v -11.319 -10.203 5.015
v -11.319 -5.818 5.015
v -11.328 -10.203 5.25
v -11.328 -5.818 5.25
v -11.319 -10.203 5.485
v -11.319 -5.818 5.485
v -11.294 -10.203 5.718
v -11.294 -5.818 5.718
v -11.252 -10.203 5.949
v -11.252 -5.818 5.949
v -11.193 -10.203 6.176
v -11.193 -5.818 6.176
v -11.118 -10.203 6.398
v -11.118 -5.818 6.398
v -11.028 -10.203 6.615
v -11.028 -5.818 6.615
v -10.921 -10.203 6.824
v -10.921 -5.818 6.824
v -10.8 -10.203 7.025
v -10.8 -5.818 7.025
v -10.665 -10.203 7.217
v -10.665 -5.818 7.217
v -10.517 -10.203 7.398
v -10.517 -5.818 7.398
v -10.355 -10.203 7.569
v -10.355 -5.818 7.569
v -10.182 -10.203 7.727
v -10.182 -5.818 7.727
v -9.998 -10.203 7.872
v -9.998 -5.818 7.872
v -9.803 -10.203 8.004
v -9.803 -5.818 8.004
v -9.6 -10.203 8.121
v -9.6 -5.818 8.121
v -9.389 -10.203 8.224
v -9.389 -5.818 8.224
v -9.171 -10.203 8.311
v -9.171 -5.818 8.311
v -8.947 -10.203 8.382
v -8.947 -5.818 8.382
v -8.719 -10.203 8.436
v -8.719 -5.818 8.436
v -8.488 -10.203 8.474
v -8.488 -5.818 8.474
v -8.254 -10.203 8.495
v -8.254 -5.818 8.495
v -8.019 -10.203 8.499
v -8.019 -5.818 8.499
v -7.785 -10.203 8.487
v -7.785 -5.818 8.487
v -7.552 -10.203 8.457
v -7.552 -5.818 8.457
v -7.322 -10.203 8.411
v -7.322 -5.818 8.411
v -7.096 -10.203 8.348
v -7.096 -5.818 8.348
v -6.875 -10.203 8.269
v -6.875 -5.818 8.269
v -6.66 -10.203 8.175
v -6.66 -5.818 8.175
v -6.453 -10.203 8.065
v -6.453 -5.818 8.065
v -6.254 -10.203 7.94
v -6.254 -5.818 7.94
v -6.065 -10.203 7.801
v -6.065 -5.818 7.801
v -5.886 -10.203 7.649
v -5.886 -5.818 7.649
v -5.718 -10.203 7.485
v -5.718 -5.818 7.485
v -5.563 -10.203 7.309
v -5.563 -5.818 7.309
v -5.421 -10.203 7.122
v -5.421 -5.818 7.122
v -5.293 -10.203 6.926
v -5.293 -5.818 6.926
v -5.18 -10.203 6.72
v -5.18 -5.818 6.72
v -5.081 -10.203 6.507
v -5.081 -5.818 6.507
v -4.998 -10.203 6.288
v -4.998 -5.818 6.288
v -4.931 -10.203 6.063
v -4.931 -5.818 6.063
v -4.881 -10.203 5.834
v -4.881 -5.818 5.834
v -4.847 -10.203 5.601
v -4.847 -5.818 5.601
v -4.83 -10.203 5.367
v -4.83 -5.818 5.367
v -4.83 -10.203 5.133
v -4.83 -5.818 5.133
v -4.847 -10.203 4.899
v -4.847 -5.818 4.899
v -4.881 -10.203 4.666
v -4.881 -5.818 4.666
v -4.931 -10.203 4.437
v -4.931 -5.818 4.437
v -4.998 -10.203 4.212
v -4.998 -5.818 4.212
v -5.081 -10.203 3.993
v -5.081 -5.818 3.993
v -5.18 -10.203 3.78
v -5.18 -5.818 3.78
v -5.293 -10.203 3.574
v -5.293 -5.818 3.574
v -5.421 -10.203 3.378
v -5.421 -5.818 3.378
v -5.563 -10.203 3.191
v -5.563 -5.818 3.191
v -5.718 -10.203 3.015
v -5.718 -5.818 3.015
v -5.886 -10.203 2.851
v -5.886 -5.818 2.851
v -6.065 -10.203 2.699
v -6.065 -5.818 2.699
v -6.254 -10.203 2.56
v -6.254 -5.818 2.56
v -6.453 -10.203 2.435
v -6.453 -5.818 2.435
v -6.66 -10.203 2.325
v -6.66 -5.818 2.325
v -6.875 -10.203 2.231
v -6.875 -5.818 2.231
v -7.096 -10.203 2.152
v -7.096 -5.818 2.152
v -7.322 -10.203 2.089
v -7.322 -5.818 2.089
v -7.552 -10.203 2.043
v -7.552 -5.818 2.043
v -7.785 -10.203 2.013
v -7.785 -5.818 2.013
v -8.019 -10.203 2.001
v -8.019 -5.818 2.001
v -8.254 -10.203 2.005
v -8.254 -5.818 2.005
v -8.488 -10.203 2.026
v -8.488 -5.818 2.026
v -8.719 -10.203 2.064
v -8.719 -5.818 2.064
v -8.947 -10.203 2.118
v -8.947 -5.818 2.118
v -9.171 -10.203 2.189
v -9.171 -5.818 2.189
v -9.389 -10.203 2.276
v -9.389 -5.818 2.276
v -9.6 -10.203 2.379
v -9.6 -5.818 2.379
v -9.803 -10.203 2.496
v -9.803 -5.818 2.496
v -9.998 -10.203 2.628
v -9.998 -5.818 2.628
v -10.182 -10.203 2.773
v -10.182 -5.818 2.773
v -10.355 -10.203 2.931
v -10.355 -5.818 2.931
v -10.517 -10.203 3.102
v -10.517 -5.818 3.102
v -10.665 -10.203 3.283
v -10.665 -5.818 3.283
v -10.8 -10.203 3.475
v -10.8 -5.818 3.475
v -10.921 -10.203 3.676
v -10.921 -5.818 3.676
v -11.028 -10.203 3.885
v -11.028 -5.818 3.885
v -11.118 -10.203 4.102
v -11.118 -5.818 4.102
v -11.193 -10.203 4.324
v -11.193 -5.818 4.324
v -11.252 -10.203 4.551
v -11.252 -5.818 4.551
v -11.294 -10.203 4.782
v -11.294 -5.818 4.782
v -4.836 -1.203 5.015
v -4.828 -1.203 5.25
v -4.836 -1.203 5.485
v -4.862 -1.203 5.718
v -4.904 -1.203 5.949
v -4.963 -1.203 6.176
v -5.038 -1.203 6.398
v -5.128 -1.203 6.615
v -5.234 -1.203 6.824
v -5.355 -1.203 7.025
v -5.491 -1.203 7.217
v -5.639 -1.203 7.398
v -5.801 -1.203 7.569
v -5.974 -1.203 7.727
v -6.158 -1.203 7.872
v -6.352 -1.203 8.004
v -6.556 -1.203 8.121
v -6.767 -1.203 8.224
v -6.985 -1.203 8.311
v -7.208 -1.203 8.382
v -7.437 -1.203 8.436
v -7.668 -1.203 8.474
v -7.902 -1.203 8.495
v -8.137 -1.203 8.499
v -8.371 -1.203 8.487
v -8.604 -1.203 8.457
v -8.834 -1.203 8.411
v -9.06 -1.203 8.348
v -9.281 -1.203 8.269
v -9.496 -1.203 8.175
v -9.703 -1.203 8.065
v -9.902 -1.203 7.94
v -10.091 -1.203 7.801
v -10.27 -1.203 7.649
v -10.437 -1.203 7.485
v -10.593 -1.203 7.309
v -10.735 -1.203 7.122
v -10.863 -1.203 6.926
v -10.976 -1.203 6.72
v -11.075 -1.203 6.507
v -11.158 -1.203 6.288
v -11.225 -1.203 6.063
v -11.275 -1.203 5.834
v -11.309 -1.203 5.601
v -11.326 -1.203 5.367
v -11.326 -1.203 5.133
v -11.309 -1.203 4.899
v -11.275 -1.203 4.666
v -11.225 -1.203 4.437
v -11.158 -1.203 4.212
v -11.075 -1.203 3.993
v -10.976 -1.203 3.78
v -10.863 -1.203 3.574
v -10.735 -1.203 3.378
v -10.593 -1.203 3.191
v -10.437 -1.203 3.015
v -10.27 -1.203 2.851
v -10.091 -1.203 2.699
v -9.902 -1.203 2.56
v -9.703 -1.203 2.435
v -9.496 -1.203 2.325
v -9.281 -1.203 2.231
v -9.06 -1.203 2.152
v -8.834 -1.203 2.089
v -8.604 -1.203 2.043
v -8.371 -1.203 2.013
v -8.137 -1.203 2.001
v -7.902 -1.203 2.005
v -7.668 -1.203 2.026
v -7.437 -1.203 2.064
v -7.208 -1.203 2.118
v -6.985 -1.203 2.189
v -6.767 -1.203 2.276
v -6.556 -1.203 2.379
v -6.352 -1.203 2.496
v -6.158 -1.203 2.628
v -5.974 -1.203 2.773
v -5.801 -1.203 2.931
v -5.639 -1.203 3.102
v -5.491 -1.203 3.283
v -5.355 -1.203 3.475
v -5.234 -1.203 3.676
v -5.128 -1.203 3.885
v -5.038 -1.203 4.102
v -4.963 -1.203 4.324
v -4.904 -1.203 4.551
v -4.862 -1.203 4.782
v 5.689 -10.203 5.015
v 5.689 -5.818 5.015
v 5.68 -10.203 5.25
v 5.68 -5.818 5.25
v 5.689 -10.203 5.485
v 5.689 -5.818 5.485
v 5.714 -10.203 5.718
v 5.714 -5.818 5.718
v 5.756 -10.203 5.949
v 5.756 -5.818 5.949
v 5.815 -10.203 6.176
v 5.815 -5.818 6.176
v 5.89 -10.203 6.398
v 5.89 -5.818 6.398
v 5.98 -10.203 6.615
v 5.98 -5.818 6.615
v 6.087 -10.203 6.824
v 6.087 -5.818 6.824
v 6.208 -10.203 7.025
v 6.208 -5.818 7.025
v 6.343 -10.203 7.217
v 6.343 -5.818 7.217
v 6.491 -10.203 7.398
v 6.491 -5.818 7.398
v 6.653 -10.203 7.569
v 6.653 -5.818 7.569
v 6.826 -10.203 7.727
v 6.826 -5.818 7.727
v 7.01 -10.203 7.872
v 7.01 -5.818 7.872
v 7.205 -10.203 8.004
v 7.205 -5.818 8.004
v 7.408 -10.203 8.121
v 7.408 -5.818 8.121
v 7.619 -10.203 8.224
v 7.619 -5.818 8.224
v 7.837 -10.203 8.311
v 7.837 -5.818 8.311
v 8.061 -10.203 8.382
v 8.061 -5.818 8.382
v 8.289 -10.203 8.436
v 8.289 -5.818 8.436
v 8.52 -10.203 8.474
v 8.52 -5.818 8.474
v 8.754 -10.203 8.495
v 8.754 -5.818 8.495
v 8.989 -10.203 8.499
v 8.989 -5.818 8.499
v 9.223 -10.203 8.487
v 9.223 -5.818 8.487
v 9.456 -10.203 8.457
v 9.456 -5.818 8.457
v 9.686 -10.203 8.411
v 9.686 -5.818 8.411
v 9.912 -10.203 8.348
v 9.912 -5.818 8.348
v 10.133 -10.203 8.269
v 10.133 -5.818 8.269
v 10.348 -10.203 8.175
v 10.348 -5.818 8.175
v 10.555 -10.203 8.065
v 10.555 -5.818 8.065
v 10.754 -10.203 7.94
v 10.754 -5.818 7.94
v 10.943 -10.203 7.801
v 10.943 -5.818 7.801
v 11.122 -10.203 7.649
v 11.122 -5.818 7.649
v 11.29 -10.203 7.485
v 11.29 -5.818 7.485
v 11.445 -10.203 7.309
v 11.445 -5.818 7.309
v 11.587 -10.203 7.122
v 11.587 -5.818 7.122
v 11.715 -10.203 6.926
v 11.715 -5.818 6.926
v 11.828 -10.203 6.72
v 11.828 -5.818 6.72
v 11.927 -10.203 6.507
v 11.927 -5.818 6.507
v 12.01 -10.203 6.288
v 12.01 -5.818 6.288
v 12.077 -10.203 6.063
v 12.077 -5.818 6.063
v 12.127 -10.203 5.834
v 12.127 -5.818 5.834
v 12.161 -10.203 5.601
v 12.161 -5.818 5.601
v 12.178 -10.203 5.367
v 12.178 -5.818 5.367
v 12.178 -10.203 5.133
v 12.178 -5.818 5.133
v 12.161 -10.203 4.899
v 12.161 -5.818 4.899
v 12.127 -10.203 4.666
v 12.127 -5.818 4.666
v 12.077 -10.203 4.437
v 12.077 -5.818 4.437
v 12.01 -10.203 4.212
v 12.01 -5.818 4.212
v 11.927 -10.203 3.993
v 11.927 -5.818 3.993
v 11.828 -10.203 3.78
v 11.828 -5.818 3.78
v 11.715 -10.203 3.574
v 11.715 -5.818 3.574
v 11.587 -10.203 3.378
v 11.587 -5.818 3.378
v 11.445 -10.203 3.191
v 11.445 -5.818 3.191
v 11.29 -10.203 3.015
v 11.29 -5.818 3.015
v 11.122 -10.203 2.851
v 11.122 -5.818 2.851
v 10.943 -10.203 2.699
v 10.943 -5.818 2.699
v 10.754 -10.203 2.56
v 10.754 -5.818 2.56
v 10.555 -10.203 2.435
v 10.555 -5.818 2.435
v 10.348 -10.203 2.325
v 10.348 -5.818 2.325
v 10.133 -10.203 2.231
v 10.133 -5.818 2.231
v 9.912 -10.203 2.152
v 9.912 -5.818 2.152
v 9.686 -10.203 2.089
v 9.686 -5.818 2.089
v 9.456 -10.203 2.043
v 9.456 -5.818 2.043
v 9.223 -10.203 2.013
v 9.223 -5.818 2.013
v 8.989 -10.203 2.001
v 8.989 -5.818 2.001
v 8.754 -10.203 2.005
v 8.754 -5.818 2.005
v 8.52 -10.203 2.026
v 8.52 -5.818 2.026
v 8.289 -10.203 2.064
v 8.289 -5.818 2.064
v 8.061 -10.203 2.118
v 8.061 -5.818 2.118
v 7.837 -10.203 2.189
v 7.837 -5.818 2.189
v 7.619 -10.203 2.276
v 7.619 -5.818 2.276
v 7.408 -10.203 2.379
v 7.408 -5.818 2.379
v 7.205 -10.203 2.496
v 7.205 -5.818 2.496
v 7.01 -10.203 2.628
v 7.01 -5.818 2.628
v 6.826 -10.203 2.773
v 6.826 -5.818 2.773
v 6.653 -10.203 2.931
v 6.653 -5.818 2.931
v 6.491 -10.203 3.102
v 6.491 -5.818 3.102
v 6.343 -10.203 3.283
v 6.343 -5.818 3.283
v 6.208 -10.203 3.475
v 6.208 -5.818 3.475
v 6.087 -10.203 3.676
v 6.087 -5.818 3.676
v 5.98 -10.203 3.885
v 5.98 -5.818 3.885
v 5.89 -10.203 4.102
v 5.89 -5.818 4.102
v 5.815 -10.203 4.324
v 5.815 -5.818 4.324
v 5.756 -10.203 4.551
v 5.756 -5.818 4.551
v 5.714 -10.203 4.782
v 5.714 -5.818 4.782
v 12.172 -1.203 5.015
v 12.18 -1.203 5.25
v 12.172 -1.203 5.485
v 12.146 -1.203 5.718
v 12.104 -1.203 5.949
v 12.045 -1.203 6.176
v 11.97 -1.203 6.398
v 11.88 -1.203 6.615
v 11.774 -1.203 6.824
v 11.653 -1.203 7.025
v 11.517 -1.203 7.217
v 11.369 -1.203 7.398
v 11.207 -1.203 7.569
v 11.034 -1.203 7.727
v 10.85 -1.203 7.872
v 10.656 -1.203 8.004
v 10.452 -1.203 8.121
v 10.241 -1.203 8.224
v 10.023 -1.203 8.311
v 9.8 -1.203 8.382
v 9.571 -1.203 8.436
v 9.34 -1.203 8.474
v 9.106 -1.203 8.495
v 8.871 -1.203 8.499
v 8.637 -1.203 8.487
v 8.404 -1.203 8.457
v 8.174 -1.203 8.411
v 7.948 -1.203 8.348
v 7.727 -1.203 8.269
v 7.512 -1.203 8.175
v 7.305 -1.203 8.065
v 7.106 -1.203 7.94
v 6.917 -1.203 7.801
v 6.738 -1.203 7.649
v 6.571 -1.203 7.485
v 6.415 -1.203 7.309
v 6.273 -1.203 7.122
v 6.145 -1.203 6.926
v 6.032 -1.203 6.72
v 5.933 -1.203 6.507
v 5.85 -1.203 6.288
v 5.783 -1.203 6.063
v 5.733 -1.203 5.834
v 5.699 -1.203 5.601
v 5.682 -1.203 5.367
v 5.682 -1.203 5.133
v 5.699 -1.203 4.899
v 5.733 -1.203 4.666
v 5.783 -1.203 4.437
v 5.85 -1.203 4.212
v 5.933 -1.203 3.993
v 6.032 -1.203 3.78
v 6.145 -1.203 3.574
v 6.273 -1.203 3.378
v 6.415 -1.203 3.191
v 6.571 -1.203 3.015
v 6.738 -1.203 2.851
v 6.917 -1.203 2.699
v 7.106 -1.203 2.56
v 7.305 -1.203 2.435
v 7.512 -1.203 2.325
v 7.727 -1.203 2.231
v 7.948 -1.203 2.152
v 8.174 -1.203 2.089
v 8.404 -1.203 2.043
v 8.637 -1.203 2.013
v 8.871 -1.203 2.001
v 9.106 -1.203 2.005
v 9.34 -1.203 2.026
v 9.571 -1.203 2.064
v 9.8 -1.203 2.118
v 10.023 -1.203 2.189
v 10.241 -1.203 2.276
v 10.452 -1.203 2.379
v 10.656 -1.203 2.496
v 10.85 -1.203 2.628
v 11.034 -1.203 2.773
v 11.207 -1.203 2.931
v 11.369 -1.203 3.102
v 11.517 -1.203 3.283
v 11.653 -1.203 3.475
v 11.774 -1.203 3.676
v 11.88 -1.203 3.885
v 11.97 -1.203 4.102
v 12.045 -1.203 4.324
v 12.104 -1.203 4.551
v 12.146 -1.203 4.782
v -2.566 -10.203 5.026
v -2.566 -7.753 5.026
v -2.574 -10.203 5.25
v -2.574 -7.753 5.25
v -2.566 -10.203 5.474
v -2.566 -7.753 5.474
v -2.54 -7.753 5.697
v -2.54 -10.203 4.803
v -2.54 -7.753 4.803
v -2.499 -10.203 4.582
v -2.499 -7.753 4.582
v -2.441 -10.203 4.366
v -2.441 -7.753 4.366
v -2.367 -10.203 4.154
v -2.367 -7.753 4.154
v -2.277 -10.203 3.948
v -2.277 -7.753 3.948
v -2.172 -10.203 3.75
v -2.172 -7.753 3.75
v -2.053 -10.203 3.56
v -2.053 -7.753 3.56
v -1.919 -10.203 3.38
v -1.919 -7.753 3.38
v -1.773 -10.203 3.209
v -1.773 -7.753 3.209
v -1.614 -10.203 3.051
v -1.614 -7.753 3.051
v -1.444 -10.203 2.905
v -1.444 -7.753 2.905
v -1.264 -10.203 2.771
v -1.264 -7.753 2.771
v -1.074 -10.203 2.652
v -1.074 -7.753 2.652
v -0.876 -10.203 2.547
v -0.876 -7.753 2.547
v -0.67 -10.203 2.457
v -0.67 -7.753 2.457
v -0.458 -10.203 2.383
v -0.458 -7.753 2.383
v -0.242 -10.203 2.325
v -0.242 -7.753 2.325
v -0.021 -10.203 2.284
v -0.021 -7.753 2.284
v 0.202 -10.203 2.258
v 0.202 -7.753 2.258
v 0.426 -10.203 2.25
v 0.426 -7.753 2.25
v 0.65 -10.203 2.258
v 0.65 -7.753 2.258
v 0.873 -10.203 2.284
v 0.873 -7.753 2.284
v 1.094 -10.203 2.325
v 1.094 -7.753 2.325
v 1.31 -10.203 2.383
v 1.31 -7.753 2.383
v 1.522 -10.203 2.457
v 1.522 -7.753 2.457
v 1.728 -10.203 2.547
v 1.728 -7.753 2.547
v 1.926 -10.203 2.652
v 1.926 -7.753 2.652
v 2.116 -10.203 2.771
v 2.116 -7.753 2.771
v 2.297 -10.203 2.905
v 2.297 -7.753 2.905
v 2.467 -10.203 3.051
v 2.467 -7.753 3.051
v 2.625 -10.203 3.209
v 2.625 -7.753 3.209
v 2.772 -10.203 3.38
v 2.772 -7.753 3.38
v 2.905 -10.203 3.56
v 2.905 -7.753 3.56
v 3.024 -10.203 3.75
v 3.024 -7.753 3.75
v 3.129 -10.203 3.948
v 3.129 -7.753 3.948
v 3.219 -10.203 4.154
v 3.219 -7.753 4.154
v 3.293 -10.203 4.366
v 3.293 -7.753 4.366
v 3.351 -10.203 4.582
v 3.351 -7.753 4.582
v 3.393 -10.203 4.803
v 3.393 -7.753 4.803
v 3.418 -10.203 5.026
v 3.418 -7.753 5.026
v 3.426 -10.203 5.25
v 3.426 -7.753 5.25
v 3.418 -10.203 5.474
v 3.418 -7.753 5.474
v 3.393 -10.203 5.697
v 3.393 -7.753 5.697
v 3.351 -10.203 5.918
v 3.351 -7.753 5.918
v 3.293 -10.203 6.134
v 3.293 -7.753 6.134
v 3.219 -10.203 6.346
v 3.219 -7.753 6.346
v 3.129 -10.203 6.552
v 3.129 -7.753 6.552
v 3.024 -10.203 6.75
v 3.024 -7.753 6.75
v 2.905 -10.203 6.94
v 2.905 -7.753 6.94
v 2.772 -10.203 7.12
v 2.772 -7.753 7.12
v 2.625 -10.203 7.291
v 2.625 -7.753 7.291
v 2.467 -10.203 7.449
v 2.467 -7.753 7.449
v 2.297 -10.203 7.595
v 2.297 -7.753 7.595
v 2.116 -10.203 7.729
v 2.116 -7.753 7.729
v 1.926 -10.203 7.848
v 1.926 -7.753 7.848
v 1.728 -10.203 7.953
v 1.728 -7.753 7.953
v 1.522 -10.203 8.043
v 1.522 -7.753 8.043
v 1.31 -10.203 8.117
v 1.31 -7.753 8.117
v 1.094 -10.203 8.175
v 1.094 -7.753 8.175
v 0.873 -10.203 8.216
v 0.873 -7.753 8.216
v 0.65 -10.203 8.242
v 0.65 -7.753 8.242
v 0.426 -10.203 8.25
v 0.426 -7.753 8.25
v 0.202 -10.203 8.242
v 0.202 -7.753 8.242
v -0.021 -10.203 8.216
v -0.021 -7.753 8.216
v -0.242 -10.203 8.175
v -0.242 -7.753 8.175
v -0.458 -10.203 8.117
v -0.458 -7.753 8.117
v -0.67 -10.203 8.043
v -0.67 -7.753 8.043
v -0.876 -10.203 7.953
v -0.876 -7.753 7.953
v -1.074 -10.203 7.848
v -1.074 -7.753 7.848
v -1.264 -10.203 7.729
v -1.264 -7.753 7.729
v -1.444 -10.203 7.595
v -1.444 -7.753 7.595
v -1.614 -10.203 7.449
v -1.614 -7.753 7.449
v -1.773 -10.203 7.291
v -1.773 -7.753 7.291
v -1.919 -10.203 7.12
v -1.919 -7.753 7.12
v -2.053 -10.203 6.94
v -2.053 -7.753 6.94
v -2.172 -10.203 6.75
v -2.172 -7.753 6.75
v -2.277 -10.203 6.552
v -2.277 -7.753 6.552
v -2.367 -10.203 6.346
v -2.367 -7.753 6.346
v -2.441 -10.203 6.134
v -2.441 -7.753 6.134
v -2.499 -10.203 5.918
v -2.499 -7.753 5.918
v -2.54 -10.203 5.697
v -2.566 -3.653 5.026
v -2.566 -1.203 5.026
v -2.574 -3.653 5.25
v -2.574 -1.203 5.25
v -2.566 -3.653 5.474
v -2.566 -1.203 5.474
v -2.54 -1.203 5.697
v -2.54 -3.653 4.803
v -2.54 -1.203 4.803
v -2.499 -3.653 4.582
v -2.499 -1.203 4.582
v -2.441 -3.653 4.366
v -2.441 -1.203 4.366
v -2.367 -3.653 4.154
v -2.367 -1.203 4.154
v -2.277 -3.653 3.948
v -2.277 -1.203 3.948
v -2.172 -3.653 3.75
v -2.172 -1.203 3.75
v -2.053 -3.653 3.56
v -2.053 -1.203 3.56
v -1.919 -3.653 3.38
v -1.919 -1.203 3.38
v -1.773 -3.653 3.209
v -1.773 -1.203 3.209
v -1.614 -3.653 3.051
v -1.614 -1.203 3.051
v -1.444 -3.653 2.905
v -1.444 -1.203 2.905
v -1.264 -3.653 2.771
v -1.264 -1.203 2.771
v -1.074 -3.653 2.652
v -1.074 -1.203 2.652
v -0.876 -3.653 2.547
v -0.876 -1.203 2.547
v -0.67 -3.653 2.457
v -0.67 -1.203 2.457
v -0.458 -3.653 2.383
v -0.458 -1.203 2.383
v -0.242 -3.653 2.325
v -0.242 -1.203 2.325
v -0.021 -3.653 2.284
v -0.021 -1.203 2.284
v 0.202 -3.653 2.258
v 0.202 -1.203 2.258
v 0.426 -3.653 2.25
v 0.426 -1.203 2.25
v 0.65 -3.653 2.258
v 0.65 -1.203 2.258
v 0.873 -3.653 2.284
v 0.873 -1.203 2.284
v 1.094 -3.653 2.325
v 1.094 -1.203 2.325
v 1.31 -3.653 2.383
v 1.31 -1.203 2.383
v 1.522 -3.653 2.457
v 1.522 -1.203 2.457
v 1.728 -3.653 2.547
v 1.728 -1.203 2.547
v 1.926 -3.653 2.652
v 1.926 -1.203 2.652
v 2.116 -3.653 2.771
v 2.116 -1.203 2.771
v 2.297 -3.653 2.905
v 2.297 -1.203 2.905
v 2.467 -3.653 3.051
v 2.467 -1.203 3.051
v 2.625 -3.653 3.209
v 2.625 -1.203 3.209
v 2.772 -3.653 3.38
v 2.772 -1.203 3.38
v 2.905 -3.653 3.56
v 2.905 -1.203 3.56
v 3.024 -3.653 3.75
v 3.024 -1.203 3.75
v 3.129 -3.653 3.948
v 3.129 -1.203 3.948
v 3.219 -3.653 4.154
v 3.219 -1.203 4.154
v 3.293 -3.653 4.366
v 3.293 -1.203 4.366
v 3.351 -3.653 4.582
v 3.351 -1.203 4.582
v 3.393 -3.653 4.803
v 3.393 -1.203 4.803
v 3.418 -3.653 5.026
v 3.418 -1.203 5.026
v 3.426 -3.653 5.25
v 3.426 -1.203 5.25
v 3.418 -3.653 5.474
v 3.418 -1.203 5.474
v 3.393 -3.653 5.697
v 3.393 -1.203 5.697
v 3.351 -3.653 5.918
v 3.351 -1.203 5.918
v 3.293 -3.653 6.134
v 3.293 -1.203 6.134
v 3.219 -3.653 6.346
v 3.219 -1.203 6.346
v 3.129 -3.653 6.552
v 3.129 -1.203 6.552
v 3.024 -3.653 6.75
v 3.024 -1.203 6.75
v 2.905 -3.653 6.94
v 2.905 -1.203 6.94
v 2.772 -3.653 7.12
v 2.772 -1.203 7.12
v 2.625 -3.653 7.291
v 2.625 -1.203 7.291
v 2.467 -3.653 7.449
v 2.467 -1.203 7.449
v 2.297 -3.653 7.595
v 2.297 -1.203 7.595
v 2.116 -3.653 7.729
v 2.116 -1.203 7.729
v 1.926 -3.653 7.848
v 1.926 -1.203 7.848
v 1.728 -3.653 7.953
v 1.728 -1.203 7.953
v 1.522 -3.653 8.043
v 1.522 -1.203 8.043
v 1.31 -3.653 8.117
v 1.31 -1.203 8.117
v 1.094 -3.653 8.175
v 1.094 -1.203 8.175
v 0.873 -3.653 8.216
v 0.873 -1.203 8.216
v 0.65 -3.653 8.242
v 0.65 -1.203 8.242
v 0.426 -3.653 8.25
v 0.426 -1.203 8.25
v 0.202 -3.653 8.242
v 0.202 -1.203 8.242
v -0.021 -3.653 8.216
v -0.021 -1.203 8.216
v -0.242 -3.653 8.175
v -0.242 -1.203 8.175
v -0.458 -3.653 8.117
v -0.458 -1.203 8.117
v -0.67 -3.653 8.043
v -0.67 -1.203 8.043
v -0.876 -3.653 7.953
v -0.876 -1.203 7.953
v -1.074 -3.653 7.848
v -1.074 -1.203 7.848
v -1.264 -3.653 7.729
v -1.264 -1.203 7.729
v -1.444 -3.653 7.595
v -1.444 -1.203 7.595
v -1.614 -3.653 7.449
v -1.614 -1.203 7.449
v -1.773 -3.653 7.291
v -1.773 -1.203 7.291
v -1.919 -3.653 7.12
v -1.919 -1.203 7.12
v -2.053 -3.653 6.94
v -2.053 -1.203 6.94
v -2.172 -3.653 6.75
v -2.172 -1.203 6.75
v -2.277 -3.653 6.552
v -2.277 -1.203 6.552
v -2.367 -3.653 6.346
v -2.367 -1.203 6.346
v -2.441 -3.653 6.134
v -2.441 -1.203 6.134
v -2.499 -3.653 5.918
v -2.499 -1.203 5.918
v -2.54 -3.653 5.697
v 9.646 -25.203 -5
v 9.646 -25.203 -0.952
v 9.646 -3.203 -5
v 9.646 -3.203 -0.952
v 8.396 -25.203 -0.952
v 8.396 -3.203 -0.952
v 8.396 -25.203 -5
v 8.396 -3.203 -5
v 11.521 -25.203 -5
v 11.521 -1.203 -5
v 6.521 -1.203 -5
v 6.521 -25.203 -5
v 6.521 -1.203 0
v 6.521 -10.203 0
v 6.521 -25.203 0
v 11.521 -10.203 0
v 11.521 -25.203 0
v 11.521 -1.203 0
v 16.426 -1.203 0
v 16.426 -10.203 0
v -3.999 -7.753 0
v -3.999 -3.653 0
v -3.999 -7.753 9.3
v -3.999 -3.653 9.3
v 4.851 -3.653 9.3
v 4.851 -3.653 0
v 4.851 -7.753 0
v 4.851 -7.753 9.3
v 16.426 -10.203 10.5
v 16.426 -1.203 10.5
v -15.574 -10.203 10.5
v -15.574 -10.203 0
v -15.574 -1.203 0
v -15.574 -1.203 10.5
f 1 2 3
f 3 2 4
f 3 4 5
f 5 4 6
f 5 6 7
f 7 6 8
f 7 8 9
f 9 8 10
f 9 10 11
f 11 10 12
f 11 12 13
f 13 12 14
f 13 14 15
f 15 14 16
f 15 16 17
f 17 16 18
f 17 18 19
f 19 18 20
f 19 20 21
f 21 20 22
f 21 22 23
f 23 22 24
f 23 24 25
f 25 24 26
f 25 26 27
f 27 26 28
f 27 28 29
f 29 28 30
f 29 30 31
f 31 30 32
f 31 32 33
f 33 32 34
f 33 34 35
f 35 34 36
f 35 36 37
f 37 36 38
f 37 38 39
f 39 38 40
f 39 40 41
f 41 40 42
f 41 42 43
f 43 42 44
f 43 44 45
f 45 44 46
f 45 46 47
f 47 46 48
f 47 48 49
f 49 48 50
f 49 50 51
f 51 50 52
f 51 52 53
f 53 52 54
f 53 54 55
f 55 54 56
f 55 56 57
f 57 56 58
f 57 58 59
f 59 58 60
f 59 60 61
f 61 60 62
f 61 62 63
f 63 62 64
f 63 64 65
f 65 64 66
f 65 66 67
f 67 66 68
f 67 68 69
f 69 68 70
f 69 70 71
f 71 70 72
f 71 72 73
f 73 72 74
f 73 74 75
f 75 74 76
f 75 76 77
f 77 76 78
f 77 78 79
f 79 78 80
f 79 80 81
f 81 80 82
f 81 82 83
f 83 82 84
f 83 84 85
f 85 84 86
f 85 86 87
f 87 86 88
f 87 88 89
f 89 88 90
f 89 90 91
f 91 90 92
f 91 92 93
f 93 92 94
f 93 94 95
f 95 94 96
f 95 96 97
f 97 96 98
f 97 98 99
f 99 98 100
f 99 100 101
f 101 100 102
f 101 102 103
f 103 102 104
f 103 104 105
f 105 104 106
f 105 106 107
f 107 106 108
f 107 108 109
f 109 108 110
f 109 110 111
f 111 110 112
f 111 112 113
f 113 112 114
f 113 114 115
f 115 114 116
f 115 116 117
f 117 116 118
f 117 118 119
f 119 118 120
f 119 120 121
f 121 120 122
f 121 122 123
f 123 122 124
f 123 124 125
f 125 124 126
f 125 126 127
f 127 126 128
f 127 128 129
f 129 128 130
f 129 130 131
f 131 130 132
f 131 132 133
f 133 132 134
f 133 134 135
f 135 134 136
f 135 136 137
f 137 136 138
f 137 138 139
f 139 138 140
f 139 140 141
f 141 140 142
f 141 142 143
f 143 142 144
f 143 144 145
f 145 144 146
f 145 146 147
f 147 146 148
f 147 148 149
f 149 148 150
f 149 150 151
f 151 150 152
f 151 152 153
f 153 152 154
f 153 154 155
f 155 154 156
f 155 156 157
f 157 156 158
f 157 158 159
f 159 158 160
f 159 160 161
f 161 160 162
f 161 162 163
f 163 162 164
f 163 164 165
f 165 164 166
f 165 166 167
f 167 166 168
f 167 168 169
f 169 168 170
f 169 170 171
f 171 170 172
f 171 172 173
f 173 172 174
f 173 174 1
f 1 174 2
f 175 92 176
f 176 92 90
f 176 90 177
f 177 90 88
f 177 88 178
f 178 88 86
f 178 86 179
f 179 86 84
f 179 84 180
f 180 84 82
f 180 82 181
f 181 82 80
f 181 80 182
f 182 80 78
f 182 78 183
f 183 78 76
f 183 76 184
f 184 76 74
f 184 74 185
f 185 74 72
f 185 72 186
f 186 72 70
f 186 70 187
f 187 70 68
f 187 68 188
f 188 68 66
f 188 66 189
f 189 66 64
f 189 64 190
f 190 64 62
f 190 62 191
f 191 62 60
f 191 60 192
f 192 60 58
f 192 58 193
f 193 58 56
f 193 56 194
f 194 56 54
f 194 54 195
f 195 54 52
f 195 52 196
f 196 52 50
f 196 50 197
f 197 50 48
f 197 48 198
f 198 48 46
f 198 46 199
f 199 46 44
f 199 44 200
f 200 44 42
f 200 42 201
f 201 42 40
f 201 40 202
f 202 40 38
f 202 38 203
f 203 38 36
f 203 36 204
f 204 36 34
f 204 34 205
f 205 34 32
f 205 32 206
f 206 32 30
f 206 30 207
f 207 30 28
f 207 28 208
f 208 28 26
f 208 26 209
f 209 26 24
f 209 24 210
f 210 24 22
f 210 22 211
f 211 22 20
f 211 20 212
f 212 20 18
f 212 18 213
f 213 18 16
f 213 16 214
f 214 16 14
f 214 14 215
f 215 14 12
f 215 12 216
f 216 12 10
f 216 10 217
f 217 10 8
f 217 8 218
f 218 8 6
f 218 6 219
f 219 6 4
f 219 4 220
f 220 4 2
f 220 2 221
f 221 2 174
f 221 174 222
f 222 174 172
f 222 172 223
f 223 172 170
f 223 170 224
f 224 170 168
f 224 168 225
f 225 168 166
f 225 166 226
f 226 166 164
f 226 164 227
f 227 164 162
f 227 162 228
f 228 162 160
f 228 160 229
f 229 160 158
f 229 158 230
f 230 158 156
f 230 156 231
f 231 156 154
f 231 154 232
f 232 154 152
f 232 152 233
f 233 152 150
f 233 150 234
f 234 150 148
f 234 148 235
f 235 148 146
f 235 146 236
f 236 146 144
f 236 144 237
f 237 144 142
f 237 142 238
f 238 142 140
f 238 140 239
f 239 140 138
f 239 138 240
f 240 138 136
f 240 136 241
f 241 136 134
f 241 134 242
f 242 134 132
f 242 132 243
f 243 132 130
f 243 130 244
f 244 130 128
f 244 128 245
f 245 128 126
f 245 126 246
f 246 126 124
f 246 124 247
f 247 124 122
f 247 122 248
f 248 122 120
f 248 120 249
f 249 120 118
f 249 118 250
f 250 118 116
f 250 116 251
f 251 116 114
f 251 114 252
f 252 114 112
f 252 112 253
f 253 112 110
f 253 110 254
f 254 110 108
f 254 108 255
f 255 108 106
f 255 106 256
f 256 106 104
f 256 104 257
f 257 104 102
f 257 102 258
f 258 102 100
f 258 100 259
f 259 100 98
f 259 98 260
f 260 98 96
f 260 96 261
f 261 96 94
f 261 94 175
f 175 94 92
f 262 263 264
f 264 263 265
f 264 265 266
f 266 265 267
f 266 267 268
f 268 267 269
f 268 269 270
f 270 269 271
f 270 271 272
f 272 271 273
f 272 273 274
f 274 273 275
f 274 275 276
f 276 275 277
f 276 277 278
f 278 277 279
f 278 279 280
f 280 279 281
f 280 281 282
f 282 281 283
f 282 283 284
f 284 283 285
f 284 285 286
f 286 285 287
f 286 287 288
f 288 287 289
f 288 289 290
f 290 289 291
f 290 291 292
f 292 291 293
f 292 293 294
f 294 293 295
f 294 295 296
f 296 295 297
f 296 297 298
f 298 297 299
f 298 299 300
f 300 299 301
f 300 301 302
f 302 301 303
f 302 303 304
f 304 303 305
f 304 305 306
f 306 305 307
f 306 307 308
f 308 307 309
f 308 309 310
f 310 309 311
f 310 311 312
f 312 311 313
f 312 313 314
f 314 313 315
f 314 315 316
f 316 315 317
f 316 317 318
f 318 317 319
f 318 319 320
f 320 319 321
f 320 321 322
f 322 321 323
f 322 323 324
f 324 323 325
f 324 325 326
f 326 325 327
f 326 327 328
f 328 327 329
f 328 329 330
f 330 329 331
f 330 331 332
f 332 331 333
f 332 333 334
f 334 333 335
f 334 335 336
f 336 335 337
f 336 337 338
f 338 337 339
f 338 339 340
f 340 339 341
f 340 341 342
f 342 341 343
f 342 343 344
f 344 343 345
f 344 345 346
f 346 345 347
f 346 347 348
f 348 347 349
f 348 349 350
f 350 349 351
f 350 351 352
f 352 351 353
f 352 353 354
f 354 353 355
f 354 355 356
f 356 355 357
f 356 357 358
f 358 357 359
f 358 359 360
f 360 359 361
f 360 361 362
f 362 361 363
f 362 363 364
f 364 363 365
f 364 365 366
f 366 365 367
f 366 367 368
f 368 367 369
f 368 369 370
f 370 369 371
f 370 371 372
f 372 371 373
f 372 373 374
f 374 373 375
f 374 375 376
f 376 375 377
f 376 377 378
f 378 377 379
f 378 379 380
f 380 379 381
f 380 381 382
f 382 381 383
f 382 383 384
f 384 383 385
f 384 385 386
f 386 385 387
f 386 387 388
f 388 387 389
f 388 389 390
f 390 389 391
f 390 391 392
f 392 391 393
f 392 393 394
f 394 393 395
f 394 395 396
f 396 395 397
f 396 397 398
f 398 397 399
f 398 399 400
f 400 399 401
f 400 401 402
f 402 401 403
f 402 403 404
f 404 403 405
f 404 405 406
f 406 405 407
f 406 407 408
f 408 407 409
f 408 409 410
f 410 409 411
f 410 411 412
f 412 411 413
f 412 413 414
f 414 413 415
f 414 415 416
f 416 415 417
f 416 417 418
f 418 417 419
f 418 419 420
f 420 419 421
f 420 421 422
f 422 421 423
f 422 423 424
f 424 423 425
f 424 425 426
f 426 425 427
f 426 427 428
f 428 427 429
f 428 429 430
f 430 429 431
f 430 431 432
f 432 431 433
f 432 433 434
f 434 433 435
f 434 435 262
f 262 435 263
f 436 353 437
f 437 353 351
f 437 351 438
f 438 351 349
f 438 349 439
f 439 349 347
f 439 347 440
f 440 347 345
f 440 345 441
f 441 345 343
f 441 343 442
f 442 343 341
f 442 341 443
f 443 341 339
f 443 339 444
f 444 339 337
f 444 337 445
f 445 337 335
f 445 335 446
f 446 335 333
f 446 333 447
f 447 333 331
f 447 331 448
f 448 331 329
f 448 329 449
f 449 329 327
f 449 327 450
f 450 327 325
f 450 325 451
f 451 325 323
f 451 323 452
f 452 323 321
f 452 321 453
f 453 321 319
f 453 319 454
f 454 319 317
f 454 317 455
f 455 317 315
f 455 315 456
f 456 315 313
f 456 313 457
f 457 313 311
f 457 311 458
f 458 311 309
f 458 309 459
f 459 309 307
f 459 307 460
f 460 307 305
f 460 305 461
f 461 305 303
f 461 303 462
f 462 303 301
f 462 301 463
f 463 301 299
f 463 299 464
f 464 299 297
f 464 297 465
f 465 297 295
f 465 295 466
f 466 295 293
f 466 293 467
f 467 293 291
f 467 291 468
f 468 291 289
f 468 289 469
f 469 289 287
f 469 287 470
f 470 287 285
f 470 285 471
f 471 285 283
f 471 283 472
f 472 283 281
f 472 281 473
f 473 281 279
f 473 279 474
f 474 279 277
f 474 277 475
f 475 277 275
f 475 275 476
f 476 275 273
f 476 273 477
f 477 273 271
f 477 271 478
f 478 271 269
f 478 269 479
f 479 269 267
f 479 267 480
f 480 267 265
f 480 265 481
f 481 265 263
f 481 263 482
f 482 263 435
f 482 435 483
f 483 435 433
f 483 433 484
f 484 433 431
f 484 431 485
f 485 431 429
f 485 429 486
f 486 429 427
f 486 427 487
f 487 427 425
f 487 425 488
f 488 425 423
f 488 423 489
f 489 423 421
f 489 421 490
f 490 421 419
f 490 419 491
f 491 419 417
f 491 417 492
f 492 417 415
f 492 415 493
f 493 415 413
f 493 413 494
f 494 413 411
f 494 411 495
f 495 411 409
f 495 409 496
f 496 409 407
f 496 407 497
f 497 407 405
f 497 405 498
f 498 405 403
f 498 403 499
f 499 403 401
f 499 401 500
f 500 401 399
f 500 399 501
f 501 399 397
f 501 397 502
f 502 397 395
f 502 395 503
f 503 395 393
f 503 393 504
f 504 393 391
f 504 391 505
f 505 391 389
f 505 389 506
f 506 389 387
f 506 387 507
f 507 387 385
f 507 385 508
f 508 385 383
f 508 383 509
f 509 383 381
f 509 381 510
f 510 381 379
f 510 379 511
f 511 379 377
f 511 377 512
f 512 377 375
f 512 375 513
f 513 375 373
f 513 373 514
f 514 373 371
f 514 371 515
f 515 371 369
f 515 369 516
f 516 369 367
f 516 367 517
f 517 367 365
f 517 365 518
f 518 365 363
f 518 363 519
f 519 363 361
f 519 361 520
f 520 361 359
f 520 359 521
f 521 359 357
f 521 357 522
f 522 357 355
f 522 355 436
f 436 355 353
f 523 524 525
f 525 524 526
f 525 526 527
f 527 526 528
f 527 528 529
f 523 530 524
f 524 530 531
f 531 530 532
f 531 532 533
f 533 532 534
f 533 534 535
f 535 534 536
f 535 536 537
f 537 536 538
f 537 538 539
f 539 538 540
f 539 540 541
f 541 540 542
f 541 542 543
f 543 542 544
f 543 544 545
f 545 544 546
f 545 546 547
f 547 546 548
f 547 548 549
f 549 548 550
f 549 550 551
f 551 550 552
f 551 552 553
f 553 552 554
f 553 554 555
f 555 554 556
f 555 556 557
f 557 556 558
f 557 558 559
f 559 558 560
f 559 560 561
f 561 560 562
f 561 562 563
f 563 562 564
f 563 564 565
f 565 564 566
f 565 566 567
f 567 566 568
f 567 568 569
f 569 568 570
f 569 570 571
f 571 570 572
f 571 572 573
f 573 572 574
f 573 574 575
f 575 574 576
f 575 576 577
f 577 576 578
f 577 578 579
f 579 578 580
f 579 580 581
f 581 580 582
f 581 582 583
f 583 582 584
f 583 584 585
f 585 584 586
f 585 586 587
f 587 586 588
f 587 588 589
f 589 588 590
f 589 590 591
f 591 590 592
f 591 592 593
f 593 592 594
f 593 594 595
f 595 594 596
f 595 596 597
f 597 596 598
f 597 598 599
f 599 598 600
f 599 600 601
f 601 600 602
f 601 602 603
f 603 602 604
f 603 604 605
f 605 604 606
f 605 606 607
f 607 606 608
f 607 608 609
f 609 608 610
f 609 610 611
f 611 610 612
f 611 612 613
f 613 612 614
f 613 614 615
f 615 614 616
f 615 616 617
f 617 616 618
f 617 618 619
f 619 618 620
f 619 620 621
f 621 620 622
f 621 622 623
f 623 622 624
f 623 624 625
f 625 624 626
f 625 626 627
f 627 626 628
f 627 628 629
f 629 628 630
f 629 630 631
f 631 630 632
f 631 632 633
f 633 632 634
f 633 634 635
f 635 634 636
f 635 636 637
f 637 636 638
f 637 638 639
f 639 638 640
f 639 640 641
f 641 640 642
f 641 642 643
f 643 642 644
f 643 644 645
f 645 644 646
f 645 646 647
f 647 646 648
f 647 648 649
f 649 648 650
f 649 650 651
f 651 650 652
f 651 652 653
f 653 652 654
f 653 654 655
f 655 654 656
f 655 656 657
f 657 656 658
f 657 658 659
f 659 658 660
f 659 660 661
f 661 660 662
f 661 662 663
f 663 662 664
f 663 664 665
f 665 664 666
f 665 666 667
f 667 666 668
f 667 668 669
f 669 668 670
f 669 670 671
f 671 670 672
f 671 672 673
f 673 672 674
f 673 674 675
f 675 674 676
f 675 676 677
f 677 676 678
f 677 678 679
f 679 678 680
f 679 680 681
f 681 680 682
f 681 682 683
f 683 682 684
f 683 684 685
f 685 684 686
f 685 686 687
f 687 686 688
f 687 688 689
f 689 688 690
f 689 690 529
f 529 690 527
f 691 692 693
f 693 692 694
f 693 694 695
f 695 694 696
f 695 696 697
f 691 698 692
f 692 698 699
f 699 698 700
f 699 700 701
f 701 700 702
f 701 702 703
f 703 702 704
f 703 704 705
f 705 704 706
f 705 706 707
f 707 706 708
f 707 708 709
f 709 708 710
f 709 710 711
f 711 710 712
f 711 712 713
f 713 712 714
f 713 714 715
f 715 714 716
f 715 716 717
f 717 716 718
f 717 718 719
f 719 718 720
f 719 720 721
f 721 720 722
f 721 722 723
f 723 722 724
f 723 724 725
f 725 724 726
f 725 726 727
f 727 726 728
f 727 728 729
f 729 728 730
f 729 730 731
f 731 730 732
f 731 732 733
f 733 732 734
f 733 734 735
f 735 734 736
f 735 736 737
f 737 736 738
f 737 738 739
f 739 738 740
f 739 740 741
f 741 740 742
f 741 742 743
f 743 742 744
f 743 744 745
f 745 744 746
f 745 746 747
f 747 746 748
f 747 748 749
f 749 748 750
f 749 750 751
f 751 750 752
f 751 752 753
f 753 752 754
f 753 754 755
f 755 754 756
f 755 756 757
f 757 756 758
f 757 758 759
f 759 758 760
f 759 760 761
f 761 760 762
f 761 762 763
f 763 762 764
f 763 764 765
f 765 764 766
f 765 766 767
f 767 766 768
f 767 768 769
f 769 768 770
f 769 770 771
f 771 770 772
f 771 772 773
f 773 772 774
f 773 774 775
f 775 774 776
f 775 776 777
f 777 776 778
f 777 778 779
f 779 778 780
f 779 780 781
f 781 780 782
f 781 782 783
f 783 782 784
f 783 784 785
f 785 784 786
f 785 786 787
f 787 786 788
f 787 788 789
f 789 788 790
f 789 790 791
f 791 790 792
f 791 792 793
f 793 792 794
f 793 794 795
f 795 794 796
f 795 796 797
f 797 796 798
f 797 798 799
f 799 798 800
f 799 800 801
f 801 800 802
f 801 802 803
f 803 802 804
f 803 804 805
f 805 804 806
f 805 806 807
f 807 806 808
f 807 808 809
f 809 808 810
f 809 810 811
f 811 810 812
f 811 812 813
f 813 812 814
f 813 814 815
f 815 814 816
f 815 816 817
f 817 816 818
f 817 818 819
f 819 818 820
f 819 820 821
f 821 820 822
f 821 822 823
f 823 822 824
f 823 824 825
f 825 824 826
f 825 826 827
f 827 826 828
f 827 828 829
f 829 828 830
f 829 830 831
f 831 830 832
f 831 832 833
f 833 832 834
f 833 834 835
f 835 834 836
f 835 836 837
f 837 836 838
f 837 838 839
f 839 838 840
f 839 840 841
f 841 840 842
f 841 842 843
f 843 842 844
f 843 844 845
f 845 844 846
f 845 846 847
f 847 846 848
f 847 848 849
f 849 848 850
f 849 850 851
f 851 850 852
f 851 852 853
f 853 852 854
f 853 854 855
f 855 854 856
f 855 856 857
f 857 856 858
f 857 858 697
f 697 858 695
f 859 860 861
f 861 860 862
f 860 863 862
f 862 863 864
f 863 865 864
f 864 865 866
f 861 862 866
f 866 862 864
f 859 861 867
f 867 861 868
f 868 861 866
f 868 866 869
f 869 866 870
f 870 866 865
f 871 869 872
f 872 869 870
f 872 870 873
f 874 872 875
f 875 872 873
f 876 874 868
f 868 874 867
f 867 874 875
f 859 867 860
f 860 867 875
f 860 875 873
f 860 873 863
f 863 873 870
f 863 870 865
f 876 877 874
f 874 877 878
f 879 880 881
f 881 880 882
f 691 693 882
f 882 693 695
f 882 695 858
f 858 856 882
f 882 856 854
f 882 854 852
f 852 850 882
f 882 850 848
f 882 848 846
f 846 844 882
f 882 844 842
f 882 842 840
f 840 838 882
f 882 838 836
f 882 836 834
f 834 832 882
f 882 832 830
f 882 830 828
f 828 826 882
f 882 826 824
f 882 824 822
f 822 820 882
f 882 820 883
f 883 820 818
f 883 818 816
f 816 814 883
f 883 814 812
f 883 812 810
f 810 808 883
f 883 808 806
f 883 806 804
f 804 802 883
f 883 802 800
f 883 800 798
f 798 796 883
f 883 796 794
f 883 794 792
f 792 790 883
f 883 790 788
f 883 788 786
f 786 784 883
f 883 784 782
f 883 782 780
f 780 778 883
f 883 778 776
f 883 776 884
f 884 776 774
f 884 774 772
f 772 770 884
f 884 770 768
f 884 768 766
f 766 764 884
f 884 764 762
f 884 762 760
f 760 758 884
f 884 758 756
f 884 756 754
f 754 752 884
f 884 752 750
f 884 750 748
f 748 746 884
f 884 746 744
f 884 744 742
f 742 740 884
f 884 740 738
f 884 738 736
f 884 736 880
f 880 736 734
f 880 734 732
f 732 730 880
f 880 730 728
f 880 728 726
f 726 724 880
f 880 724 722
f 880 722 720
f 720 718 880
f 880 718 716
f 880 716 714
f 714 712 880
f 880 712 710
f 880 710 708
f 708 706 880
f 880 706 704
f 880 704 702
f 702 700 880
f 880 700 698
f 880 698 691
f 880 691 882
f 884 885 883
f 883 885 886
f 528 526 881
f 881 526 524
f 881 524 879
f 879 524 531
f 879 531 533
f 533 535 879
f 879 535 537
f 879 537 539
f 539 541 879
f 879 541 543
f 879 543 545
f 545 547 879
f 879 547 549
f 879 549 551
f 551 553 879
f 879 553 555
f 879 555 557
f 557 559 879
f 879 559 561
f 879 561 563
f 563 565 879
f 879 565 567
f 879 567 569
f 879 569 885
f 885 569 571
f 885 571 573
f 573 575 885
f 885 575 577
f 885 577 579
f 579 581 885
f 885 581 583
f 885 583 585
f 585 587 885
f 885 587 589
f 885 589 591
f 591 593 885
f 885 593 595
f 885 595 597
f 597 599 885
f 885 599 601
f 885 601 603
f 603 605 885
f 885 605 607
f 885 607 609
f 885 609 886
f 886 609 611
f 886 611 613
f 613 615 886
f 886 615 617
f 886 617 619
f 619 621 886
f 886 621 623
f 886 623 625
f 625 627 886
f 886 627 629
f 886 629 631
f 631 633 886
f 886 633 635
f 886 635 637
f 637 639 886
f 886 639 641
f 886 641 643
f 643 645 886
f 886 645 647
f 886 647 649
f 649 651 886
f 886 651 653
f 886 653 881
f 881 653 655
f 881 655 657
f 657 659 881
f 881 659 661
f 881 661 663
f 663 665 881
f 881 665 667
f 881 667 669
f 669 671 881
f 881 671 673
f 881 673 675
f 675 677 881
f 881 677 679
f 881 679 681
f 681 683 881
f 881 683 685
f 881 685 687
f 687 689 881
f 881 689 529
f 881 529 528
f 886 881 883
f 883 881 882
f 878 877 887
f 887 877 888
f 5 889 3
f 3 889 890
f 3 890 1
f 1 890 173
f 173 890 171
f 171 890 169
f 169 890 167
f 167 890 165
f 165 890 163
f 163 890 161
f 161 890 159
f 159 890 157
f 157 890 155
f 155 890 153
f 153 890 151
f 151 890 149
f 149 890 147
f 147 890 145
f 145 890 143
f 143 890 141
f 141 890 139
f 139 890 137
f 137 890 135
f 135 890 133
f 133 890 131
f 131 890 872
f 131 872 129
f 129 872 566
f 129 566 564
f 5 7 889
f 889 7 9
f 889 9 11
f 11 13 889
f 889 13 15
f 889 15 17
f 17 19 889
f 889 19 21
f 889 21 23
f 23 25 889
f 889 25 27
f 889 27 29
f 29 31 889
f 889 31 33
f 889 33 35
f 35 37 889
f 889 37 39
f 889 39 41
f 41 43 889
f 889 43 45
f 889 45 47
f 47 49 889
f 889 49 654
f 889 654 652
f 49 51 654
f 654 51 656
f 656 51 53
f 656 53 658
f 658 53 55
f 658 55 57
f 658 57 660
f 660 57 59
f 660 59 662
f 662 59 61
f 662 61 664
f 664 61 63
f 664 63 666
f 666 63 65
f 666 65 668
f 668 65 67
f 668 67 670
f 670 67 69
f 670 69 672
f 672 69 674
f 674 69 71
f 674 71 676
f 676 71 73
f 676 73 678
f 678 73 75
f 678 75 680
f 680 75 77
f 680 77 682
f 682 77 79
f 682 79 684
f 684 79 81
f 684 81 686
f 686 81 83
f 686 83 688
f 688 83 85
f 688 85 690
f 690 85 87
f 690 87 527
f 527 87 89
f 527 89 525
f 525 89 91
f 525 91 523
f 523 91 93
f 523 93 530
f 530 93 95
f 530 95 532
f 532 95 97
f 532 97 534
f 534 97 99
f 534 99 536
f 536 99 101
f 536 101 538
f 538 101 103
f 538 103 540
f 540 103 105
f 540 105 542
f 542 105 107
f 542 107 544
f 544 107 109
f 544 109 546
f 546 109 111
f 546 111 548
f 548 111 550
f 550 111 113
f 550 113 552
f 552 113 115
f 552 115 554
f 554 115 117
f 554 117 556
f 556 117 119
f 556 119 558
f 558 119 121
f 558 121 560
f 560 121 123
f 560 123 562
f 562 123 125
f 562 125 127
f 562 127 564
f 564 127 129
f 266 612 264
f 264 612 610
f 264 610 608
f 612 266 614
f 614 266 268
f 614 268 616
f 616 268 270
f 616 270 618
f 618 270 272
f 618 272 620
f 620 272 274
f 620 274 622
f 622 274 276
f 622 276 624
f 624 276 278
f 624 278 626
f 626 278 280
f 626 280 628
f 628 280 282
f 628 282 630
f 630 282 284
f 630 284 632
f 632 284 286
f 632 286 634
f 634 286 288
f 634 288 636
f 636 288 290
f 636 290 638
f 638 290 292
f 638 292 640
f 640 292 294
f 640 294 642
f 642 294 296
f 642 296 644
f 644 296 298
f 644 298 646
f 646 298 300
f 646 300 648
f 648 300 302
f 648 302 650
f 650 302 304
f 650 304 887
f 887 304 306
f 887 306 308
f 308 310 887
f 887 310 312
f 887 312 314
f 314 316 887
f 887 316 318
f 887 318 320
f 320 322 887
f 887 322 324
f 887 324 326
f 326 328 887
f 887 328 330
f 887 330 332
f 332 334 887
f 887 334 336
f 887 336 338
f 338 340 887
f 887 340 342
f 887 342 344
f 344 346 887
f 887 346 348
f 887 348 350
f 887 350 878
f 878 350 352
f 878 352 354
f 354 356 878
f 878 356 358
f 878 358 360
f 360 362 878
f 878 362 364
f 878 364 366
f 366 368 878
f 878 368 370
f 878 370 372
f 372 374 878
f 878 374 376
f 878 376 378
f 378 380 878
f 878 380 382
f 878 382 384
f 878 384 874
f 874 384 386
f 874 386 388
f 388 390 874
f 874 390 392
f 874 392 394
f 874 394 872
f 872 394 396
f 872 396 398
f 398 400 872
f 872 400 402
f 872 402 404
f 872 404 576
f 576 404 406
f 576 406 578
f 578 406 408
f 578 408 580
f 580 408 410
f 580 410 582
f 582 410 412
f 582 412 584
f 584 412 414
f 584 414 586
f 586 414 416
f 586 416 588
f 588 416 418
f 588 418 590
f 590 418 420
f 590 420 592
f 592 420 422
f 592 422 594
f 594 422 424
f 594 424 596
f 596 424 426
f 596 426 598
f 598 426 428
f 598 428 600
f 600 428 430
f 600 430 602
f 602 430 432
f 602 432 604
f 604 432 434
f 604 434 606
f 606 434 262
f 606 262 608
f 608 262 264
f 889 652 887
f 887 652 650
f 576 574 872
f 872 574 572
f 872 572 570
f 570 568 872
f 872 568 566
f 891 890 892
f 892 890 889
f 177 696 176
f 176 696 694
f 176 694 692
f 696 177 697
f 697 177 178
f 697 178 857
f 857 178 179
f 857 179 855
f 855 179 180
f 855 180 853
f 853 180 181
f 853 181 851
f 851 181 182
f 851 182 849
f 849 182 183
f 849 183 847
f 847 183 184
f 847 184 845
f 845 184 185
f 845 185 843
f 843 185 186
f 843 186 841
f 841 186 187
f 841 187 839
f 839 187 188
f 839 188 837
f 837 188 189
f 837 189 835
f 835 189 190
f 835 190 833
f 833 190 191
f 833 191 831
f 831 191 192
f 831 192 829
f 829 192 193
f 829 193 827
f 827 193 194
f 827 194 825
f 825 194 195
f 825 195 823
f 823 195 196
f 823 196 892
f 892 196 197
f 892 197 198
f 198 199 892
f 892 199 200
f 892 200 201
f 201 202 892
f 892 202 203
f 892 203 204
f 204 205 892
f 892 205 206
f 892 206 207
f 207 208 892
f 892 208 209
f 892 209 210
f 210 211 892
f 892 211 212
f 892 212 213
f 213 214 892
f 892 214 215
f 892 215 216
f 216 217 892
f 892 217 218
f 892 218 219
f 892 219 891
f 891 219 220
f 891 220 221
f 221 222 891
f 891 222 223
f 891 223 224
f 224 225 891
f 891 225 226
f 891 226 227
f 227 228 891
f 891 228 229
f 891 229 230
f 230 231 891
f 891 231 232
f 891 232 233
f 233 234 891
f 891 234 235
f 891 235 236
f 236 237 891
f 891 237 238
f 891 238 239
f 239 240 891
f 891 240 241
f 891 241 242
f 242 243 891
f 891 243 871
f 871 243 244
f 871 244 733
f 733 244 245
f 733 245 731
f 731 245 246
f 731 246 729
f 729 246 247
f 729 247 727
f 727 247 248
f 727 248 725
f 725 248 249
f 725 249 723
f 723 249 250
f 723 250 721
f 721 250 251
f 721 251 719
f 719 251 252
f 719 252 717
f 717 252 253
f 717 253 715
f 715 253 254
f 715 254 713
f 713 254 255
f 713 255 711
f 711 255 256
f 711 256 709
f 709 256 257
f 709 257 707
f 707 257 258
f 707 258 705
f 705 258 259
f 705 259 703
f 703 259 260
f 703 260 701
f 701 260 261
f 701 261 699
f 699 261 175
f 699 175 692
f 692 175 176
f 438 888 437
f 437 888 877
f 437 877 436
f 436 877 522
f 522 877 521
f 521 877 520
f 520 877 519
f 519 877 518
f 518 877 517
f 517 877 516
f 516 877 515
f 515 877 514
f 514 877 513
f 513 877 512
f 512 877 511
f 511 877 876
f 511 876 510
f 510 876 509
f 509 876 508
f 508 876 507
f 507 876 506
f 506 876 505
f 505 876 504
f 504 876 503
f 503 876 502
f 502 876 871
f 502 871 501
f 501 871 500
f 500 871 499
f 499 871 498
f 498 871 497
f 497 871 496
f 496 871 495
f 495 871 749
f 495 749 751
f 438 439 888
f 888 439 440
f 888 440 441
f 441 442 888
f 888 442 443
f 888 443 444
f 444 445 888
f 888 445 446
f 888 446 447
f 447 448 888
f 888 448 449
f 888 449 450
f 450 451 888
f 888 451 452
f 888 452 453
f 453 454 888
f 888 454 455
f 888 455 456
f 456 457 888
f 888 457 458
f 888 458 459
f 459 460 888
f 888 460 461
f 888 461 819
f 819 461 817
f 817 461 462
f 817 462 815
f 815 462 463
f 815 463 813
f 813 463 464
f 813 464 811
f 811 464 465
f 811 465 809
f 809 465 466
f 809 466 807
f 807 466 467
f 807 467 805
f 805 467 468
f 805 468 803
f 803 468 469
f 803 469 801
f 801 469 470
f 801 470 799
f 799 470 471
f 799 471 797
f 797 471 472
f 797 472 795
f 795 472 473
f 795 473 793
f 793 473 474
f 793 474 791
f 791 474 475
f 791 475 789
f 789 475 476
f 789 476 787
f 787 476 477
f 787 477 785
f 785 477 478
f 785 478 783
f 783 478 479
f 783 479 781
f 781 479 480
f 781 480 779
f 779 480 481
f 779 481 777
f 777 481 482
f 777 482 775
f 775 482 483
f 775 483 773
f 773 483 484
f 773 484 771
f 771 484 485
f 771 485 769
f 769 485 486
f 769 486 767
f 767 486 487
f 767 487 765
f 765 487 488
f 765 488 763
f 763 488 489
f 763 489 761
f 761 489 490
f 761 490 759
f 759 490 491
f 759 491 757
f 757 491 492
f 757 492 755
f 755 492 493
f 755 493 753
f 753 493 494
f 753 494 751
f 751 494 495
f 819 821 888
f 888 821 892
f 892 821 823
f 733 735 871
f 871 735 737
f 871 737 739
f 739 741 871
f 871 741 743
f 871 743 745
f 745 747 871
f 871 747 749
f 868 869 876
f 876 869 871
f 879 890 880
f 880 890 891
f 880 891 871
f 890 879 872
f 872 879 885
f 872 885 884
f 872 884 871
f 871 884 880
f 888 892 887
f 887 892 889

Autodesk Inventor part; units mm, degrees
ref_plane "YZ Plane" through (0, 0, 0) normal (1, 0, 0) x (0, 1, 0)
ref_plane "XZ Plane" through (0, 0, 0) normal (0, 1, 0) x (-1, 0, 0)
ref_plane "XY Plane" through (0, 0, 0) normal (0, 0, 1) x (1, 0, 0)
sketch "Skizze1" plane through (0, 0, 0) normal (0, 0, 1) x (1, 0, 0)
  point P0 (0, 0)
sketch "Skizze2" plane through (0, 0, 0) normal (0, 0, 1) x (1, 0, 0)
  line L0 (-15.5739, -1.2028) -> (16.4261, -1.2028)
  line L1 (16.4261, -1.2028) -> (16.4261, -10.2028)
  line L2 (16.4261, -10.2028) -> (-15.5739, -10.2028)
  line L3 (-15.5739, -10.2028) -> (-15.5739, -1.2028)
  point P0 (0, 0)
  dimension "d0" = 32
  dimension "d1" = 9
extrude "Extrusion1" add sketch "Skizze2" along normal blind 10.5
sketch "Skizze3" plane through (16.4261, -10.2028, 0) normal (1, 0, 0) x (0, 0, -1)
  point P0 (0, 10.2028)
sketch "Skizze4" plane through (-15.5739, -1.2028, 0) normal (0, 1, 0) x (1, 0, 0)
  line L0 (0, 0) -> (0, -10.5) projected
  line L1 (0, 0) -> (32, 0) projected
  point P0 (15.5739, 0)
  point P1 (16, -5.25)
  point P2 (7.496, -5.25)
  point P3 (24.504, -5.25)
  dimension "d4" = 8.504
  dimension "d5" = 8.504
  dimension "d6" = 16
  dimension "d14" = 5.25
  dimension "d15" = 5.25
sketch "Skizze5" plane through (0, 0, 0) normal (0, 0, -1) x (-1, 0, 0)
  point P0 (0, 0)
sketch "Skizze6" plane through (0, 0, 0) normal (0, 0, -1) x (-1, 0, 0)
  line L0 (-4.8511, -7.7528) -> (3.9989, -7.7528)
  line L1 (3.9989, -7.7528) -> (3.9989, -3.6528)
  line L2 (3.9989, -3.6528) -> (-4.8511, -3.6528)
  line L3 (-4.8511, -3.6528) -> (-4.8511, -7.7528)
  line L4 (-16.4261, -10.2028) -> (15.5739, -10.2028) projected
  line L5 (15.5739, -10.2028) -> (15.5739, -1.2028) projected
  point P0 (0, 0)
  dimension "d16" = 8.85
  dimension "d17" = 4.1
  dimension "d18" = 2.45
  dimension "d19" = 11.575
extrude "Extrusion2" cut sketch "Skizze6" against normal blind 9.3
sketch "Skizze7" plane through (-15.5739, -10.2028, 0) normal (0, -1, 0) x (1, 0, 0)
  point P0 (15.5739, 0)
sketch "Skizze8" plane through (0, 0, 0) normal (0, 0, -1) x (-1, 0, 0)
  point P0 (0, 0)
sketch "Skizze9" plane through (-15.5739, -10.2028, 0) normal (0, -1, 0) x (1, 0, 0)
  line L0 (0, 0) -> (32, 0) projected
  line L1 (4.9045, 0) -> (9.9045, 0)
  line L2 (9.9045, 0) -> (9.9045, 1.2)
  line L3 (9.9045, 1.2) -> (4.9045, 1.2)
  line L4 (4.9045, 1.2) -> (4.9045, 0)
  point P0 (15.5739, 0)
  dimension "d22" = 1.2
  dimension "d23" = 5
extrude "Extrusion3" add sketch "Skizze9" along normal blind 15
sketch "Skizze10" plane through (0, 0, 0) normal (0, 0, -1) x (-1, 0, 0)
  line L0 (5.6694, -25.2028) -> (10.6694, -25.2028) projected
  line L1 (15.5739, -1.2028) -> (-16.4261, -1.2028) projected
  line L2 (10.6694, -25.2028) -> (5.6694, -25.2028)
  line L3 (5.6694, -25.2028) -> (5.6694, -1.2028)
  line L4 (5.6694, -1.2028) -> (10.6694, -1.2028)
  line L5 (10.6694, -1.2028) -> (10.6694, -25.2028)
  point P0 (0, 0)
  dimension "d26" = 5
extrude "Extrusion4" add sketch "Skizze10" along normal blind 5
sketch "Skizze11" plane through (-15.5739, -25.2028, 0) normal (0, -1, 0) x (1, 0, 0)
  line L0 (4.9045, -5) -> (9.9045, -5) projected
  line L1 (6.7795, -5) -> (8.0295, -5)
  line L2 (8.0295, -5) -> (8.0295, -0.9525)
  line L3 (8.0295, -0.9525) -> (6.7795, -0.9525)
  line L4 (6.7795, -0.9525) -> (6.7795, -5)
  line L5 (9.9045, 1.2) -> (9.9045, -5) projected
  point P0 (15.5739, 0)
  dimension "d29" = 1.25
  dimension "d30" = 1.875
  dimension "d31" = 4.0475
extrude "Extrusion5" cut sketch "Skizze11" against normal blind 22
sketch "Skizze12" plane through (-15.5739, -25.2028, 0) normal (0, -1, 0) x (1, 0, 0)
  line L0 (9.9045, 1.2) -> (9.9045, 0) projected
  line L1 (4.9045, 0) -> (4.9045, 1.2) projected
  line L2 (9.9045, 1.2) -> (4.9045, 1.2)
  line L3 (4.9045, 1.2) -> (4.9045, 0)
  line L4 (4.9045, 0) -> (9.9045, 0)
  line L5 (9.9045, 0) -> (9.9045, 1.2)
  point P0 (15.5739, 0)
extrude "Extrusion6" cut sketch "Skizze12" against normal blind 15
sketch "Skizze13" plane through (0, 0, 0) normal (0, 1, 0) x (-1, 0, 0)
  line L0 (5.6694, 0) -> (-16.4261, 0) projected
  line L1 (-6.5211, 0) -> (-11.5211, 0)
  line L2 (-11.5211, 0) -> (-11.5211, -5)
  line L3 (-11.5211, -5) -> (-6.5211, -5)
  line L4 (-6.5211, -5) -> (-6.5211, 0)
  line L5 (-16.4261, 0) -> (-16.4261, 10.5) projected
  point P0 (0, 0)
  dimension "d36" = 5
  dimension "d37" = 5
  dimension "d38" = 4.905
extrude "Extrusion7" add sketch "Skizze13" against normal blind 25.203
sketch "Skizze14" plane through (6.5211, 0, 0) normal (0, 0, 1) x (1, 0, 0)
  line L0 (5, -1.2028) -> (9.905, -1.2028) projected
  line L1 (0, 0) -> (0, -25.203) projected
  line L2 (5, -1.2028) -> (0, -1.2028)
  line L3 (0, -1.2028) -> (0, 0)
  line L4 (0, 0) -> (5, 0)
  line L5 (5, 0) -> (5, -1.2028)
  point P0 (-6.5211, 0)
extrude "Extrusion8" cut sketch "Skizze14" against normal blind 25
sketch "Skizze15" plane through (0, -25.203, 0) normal (0, -1, 0) x (1, 0, 0)
  line L0 (6.5211, -5) -> (11.5211, -5) projected
  line L1 (8.3961, -5) -> (9.6461, -5)
  line L2 (9.6461, -5) -> (9.6461, -0.952)
  line L3 (9.6461, -0.952) -> (8.3961, -0.952)
  line L4 (8.3961, -0.952) -> (8.3961, -5)
  line L5 (11.5211, -5) -> (11.5211, 0) projected
  point P0 (0, 0)
  dimension "d43" = 1.25
  dimension "d44" = 4.048
  dimension "d45" = 1.875
extrude "Extrusion9" cut sketch "Skizze15" against normal blind 22
sketch "Skizze16" plane through (-15.5739, -25.2028, 0) normal (0, -1, 0) x (1, 0, 0)
  line L0 (0, 0) -> (4.9045, 0) projected
  line L1 (4.9045, -5) -> (9.9045, -5) projected
  line L2 (4.9045, 0) -> (9.9045, 0)
  line L3 (9.9045, 0) -> (9.9045, -5)
  line L4 (9.9045, -5) -> (4.9045, -5)
  line L5 (4.9045, -5) -> (4.9045, 0)
  point P0 (15.5739, 0)
extrude "Extrusion10" cut sketch "Skizze16" against normal blind 25
hole "Bohrung2" at (0.4261, -1.2028, 5.25) direction (0, -1, 0) diameter 6 end through all
hole "Bohrung3" at (-8.0779, -1.2028, 5.25) at (8.9301, -1.2028, 5.25) direction (0, -1, 0) diameter 6.5 end through all
properties part number "Objektträgerhalter 2afinal"
